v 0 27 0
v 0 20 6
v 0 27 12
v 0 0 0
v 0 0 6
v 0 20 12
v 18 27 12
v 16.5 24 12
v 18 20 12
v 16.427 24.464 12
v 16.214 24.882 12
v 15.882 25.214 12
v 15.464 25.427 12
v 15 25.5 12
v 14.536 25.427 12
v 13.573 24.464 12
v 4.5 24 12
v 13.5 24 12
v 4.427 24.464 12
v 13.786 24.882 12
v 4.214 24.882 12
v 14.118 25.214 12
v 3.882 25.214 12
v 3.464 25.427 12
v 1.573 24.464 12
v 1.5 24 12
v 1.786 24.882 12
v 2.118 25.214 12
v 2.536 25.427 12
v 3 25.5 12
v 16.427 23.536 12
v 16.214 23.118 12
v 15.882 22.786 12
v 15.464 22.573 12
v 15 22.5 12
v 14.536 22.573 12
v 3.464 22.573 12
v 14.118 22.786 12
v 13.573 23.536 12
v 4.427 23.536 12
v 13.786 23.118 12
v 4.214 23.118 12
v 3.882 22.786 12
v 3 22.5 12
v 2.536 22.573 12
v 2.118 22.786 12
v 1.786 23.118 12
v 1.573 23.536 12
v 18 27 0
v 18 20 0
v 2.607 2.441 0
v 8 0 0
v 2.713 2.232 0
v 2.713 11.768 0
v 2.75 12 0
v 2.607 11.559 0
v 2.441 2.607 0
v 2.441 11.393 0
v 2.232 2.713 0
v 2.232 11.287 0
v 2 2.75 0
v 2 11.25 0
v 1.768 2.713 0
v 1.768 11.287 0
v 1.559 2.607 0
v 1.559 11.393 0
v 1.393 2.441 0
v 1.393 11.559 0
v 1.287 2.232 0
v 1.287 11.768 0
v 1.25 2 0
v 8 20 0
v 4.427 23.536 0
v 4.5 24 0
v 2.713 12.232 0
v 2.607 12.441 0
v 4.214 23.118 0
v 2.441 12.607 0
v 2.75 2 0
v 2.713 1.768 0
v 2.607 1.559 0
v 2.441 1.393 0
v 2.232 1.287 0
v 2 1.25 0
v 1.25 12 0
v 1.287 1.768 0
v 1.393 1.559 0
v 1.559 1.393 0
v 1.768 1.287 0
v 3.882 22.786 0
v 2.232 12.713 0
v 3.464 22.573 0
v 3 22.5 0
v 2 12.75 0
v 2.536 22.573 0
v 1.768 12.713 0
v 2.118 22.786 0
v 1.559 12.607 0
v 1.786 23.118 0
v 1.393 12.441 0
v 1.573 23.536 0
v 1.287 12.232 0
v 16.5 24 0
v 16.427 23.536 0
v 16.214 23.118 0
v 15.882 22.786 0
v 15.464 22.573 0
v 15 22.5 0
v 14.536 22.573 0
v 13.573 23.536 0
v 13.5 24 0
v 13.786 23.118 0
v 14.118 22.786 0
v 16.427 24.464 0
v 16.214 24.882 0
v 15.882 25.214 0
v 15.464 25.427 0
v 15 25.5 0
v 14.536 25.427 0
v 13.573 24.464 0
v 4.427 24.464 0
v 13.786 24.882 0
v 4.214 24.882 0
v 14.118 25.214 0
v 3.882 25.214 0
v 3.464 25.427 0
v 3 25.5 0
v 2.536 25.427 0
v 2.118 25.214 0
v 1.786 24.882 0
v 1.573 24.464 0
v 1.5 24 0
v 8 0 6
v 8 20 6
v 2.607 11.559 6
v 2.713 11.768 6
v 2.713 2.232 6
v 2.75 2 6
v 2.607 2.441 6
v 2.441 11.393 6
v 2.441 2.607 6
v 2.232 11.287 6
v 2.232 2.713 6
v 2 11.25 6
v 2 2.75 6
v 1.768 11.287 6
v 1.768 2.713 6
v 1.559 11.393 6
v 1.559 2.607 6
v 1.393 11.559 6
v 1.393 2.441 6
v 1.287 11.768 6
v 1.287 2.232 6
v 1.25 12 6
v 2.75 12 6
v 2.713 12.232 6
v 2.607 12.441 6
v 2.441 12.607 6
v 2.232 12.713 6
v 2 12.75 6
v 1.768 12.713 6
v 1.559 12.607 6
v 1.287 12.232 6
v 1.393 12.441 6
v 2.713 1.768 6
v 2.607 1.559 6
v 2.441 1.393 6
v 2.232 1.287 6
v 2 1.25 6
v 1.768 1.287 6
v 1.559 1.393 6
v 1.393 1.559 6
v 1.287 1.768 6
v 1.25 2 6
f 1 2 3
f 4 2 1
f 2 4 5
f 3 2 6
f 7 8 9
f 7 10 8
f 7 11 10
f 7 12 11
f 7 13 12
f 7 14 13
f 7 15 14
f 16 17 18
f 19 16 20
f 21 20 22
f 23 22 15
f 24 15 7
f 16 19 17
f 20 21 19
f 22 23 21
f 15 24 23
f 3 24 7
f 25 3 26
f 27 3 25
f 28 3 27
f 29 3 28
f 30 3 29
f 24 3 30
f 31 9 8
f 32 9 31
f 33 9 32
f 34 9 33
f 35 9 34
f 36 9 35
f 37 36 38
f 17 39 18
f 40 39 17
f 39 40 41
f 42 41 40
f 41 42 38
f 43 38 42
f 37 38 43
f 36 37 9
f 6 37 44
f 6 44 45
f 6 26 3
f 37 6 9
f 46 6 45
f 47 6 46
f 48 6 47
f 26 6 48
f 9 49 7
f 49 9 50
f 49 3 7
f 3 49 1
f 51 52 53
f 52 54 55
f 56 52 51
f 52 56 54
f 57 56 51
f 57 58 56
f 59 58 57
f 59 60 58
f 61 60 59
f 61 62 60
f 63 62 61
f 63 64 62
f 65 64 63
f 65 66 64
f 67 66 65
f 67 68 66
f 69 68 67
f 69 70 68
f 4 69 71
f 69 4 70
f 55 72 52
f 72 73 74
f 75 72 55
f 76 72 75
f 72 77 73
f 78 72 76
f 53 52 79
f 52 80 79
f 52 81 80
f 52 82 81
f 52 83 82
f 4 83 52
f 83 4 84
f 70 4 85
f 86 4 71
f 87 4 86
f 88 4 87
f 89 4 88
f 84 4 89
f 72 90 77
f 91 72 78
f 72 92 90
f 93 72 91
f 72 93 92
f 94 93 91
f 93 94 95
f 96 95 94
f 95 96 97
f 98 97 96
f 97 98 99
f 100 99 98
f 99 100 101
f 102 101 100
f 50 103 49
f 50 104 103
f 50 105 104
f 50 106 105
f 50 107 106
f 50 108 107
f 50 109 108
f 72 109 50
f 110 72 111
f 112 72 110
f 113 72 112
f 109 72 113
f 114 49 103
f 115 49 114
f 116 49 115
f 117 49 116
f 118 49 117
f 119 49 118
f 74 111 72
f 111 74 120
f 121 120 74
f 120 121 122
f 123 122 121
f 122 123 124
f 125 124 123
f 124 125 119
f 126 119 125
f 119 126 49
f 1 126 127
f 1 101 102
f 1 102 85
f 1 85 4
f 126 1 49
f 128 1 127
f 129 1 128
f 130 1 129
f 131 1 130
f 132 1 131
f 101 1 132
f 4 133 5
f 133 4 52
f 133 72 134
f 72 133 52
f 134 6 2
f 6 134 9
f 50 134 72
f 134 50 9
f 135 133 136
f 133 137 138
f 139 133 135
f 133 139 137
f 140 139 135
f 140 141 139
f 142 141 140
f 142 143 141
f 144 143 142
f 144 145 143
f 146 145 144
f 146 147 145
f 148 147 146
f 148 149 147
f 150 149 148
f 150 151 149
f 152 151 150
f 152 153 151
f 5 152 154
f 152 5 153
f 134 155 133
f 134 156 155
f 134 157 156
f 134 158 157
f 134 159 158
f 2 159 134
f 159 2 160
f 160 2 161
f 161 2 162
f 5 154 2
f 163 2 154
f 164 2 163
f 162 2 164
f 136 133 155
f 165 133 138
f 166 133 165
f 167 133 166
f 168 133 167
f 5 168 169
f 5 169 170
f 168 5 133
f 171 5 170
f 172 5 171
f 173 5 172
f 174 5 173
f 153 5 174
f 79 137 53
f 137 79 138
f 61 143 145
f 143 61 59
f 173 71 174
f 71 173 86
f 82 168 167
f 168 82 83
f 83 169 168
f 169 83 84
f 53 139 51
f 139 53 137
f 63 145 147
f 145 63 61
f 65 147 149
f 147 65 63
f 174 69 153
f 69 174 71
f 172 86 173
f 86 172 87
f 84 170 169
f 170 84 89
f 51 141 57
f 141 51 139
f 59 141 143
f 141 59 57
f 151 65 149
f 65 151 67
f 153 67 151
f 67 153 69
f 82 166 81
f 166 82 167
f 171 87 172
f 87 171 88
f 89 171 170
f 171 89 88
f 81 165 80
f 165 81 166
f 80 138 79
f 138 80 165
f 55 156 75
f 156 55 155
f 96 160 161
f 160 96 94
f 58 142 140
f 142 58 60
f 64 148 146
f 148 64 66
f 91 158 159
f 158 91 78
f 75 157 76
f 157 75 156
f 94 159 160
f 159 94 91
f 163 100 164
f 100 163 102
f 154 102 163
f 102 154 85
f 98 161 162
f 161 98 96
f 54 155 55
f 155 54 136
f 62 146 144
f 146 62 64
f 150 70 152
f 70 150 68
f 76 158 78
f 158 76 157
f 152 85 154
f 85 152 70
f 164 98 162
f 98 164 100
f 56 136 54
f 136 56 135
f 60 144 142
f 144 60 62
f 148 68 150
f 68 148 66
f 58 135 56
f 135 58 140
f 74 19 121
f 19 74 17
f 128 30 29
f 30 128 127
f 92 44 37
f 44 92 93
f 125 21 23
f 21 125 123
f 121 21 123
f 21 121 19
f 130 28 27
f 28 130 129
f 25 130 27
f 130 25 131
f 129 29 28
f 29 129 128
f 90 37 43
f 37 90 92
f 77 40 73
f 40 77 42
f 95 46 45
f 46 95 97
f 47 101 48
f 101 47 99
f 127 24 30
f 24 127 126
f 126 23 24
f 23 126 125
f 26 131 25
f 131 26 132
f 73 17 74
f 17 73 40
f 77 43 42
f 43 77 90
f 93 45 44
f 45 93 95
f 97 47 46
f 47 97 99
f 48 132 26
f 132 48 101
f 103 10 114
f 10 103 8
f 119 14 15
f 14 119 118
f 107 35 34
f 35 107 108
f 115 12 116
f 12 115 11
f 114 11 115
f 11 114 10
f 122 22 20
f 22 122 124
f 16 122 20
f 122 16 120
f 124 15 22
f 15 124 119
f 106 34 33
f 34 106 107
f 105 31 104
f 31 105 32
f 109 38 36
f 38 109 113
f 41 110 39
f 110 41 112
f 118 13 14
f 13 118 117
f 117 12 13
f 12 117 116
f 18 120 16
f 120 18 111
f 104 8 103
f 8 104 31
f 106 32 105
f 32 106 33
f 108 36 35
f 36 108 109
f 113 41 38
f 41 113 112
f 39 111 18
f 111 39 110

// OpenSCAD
/**
 * Y-EndStop-Holder.scad
 *
 * Created by Diego Viejo
 * 29-July-2019
 *
 */

 
Width = 18;
Length = 27;
Height = 12;

difference()
{
    cube([Width, Length, Height]);
    
    translate([8, -Length+20, -1]) cube([Width, Length, Height+2]);
    translate([-1, -1, 6]) cube([Width+2, 20+1, Height]);
    
    translate([2, 2, -1]) cylinder(d=1.5, h=Height+2, $fn=20);
    translate([2, 12, -1]) cylinder(d=1.5, h=Height+2, $fn=20);

    translate([3, Length-3, -1]) cylinder(d=3, h=Height+2, $fn=20);
    translate([12+3, Length-3, -1]) cylinder(d=3, h=Height+2, $fn=20);
}
